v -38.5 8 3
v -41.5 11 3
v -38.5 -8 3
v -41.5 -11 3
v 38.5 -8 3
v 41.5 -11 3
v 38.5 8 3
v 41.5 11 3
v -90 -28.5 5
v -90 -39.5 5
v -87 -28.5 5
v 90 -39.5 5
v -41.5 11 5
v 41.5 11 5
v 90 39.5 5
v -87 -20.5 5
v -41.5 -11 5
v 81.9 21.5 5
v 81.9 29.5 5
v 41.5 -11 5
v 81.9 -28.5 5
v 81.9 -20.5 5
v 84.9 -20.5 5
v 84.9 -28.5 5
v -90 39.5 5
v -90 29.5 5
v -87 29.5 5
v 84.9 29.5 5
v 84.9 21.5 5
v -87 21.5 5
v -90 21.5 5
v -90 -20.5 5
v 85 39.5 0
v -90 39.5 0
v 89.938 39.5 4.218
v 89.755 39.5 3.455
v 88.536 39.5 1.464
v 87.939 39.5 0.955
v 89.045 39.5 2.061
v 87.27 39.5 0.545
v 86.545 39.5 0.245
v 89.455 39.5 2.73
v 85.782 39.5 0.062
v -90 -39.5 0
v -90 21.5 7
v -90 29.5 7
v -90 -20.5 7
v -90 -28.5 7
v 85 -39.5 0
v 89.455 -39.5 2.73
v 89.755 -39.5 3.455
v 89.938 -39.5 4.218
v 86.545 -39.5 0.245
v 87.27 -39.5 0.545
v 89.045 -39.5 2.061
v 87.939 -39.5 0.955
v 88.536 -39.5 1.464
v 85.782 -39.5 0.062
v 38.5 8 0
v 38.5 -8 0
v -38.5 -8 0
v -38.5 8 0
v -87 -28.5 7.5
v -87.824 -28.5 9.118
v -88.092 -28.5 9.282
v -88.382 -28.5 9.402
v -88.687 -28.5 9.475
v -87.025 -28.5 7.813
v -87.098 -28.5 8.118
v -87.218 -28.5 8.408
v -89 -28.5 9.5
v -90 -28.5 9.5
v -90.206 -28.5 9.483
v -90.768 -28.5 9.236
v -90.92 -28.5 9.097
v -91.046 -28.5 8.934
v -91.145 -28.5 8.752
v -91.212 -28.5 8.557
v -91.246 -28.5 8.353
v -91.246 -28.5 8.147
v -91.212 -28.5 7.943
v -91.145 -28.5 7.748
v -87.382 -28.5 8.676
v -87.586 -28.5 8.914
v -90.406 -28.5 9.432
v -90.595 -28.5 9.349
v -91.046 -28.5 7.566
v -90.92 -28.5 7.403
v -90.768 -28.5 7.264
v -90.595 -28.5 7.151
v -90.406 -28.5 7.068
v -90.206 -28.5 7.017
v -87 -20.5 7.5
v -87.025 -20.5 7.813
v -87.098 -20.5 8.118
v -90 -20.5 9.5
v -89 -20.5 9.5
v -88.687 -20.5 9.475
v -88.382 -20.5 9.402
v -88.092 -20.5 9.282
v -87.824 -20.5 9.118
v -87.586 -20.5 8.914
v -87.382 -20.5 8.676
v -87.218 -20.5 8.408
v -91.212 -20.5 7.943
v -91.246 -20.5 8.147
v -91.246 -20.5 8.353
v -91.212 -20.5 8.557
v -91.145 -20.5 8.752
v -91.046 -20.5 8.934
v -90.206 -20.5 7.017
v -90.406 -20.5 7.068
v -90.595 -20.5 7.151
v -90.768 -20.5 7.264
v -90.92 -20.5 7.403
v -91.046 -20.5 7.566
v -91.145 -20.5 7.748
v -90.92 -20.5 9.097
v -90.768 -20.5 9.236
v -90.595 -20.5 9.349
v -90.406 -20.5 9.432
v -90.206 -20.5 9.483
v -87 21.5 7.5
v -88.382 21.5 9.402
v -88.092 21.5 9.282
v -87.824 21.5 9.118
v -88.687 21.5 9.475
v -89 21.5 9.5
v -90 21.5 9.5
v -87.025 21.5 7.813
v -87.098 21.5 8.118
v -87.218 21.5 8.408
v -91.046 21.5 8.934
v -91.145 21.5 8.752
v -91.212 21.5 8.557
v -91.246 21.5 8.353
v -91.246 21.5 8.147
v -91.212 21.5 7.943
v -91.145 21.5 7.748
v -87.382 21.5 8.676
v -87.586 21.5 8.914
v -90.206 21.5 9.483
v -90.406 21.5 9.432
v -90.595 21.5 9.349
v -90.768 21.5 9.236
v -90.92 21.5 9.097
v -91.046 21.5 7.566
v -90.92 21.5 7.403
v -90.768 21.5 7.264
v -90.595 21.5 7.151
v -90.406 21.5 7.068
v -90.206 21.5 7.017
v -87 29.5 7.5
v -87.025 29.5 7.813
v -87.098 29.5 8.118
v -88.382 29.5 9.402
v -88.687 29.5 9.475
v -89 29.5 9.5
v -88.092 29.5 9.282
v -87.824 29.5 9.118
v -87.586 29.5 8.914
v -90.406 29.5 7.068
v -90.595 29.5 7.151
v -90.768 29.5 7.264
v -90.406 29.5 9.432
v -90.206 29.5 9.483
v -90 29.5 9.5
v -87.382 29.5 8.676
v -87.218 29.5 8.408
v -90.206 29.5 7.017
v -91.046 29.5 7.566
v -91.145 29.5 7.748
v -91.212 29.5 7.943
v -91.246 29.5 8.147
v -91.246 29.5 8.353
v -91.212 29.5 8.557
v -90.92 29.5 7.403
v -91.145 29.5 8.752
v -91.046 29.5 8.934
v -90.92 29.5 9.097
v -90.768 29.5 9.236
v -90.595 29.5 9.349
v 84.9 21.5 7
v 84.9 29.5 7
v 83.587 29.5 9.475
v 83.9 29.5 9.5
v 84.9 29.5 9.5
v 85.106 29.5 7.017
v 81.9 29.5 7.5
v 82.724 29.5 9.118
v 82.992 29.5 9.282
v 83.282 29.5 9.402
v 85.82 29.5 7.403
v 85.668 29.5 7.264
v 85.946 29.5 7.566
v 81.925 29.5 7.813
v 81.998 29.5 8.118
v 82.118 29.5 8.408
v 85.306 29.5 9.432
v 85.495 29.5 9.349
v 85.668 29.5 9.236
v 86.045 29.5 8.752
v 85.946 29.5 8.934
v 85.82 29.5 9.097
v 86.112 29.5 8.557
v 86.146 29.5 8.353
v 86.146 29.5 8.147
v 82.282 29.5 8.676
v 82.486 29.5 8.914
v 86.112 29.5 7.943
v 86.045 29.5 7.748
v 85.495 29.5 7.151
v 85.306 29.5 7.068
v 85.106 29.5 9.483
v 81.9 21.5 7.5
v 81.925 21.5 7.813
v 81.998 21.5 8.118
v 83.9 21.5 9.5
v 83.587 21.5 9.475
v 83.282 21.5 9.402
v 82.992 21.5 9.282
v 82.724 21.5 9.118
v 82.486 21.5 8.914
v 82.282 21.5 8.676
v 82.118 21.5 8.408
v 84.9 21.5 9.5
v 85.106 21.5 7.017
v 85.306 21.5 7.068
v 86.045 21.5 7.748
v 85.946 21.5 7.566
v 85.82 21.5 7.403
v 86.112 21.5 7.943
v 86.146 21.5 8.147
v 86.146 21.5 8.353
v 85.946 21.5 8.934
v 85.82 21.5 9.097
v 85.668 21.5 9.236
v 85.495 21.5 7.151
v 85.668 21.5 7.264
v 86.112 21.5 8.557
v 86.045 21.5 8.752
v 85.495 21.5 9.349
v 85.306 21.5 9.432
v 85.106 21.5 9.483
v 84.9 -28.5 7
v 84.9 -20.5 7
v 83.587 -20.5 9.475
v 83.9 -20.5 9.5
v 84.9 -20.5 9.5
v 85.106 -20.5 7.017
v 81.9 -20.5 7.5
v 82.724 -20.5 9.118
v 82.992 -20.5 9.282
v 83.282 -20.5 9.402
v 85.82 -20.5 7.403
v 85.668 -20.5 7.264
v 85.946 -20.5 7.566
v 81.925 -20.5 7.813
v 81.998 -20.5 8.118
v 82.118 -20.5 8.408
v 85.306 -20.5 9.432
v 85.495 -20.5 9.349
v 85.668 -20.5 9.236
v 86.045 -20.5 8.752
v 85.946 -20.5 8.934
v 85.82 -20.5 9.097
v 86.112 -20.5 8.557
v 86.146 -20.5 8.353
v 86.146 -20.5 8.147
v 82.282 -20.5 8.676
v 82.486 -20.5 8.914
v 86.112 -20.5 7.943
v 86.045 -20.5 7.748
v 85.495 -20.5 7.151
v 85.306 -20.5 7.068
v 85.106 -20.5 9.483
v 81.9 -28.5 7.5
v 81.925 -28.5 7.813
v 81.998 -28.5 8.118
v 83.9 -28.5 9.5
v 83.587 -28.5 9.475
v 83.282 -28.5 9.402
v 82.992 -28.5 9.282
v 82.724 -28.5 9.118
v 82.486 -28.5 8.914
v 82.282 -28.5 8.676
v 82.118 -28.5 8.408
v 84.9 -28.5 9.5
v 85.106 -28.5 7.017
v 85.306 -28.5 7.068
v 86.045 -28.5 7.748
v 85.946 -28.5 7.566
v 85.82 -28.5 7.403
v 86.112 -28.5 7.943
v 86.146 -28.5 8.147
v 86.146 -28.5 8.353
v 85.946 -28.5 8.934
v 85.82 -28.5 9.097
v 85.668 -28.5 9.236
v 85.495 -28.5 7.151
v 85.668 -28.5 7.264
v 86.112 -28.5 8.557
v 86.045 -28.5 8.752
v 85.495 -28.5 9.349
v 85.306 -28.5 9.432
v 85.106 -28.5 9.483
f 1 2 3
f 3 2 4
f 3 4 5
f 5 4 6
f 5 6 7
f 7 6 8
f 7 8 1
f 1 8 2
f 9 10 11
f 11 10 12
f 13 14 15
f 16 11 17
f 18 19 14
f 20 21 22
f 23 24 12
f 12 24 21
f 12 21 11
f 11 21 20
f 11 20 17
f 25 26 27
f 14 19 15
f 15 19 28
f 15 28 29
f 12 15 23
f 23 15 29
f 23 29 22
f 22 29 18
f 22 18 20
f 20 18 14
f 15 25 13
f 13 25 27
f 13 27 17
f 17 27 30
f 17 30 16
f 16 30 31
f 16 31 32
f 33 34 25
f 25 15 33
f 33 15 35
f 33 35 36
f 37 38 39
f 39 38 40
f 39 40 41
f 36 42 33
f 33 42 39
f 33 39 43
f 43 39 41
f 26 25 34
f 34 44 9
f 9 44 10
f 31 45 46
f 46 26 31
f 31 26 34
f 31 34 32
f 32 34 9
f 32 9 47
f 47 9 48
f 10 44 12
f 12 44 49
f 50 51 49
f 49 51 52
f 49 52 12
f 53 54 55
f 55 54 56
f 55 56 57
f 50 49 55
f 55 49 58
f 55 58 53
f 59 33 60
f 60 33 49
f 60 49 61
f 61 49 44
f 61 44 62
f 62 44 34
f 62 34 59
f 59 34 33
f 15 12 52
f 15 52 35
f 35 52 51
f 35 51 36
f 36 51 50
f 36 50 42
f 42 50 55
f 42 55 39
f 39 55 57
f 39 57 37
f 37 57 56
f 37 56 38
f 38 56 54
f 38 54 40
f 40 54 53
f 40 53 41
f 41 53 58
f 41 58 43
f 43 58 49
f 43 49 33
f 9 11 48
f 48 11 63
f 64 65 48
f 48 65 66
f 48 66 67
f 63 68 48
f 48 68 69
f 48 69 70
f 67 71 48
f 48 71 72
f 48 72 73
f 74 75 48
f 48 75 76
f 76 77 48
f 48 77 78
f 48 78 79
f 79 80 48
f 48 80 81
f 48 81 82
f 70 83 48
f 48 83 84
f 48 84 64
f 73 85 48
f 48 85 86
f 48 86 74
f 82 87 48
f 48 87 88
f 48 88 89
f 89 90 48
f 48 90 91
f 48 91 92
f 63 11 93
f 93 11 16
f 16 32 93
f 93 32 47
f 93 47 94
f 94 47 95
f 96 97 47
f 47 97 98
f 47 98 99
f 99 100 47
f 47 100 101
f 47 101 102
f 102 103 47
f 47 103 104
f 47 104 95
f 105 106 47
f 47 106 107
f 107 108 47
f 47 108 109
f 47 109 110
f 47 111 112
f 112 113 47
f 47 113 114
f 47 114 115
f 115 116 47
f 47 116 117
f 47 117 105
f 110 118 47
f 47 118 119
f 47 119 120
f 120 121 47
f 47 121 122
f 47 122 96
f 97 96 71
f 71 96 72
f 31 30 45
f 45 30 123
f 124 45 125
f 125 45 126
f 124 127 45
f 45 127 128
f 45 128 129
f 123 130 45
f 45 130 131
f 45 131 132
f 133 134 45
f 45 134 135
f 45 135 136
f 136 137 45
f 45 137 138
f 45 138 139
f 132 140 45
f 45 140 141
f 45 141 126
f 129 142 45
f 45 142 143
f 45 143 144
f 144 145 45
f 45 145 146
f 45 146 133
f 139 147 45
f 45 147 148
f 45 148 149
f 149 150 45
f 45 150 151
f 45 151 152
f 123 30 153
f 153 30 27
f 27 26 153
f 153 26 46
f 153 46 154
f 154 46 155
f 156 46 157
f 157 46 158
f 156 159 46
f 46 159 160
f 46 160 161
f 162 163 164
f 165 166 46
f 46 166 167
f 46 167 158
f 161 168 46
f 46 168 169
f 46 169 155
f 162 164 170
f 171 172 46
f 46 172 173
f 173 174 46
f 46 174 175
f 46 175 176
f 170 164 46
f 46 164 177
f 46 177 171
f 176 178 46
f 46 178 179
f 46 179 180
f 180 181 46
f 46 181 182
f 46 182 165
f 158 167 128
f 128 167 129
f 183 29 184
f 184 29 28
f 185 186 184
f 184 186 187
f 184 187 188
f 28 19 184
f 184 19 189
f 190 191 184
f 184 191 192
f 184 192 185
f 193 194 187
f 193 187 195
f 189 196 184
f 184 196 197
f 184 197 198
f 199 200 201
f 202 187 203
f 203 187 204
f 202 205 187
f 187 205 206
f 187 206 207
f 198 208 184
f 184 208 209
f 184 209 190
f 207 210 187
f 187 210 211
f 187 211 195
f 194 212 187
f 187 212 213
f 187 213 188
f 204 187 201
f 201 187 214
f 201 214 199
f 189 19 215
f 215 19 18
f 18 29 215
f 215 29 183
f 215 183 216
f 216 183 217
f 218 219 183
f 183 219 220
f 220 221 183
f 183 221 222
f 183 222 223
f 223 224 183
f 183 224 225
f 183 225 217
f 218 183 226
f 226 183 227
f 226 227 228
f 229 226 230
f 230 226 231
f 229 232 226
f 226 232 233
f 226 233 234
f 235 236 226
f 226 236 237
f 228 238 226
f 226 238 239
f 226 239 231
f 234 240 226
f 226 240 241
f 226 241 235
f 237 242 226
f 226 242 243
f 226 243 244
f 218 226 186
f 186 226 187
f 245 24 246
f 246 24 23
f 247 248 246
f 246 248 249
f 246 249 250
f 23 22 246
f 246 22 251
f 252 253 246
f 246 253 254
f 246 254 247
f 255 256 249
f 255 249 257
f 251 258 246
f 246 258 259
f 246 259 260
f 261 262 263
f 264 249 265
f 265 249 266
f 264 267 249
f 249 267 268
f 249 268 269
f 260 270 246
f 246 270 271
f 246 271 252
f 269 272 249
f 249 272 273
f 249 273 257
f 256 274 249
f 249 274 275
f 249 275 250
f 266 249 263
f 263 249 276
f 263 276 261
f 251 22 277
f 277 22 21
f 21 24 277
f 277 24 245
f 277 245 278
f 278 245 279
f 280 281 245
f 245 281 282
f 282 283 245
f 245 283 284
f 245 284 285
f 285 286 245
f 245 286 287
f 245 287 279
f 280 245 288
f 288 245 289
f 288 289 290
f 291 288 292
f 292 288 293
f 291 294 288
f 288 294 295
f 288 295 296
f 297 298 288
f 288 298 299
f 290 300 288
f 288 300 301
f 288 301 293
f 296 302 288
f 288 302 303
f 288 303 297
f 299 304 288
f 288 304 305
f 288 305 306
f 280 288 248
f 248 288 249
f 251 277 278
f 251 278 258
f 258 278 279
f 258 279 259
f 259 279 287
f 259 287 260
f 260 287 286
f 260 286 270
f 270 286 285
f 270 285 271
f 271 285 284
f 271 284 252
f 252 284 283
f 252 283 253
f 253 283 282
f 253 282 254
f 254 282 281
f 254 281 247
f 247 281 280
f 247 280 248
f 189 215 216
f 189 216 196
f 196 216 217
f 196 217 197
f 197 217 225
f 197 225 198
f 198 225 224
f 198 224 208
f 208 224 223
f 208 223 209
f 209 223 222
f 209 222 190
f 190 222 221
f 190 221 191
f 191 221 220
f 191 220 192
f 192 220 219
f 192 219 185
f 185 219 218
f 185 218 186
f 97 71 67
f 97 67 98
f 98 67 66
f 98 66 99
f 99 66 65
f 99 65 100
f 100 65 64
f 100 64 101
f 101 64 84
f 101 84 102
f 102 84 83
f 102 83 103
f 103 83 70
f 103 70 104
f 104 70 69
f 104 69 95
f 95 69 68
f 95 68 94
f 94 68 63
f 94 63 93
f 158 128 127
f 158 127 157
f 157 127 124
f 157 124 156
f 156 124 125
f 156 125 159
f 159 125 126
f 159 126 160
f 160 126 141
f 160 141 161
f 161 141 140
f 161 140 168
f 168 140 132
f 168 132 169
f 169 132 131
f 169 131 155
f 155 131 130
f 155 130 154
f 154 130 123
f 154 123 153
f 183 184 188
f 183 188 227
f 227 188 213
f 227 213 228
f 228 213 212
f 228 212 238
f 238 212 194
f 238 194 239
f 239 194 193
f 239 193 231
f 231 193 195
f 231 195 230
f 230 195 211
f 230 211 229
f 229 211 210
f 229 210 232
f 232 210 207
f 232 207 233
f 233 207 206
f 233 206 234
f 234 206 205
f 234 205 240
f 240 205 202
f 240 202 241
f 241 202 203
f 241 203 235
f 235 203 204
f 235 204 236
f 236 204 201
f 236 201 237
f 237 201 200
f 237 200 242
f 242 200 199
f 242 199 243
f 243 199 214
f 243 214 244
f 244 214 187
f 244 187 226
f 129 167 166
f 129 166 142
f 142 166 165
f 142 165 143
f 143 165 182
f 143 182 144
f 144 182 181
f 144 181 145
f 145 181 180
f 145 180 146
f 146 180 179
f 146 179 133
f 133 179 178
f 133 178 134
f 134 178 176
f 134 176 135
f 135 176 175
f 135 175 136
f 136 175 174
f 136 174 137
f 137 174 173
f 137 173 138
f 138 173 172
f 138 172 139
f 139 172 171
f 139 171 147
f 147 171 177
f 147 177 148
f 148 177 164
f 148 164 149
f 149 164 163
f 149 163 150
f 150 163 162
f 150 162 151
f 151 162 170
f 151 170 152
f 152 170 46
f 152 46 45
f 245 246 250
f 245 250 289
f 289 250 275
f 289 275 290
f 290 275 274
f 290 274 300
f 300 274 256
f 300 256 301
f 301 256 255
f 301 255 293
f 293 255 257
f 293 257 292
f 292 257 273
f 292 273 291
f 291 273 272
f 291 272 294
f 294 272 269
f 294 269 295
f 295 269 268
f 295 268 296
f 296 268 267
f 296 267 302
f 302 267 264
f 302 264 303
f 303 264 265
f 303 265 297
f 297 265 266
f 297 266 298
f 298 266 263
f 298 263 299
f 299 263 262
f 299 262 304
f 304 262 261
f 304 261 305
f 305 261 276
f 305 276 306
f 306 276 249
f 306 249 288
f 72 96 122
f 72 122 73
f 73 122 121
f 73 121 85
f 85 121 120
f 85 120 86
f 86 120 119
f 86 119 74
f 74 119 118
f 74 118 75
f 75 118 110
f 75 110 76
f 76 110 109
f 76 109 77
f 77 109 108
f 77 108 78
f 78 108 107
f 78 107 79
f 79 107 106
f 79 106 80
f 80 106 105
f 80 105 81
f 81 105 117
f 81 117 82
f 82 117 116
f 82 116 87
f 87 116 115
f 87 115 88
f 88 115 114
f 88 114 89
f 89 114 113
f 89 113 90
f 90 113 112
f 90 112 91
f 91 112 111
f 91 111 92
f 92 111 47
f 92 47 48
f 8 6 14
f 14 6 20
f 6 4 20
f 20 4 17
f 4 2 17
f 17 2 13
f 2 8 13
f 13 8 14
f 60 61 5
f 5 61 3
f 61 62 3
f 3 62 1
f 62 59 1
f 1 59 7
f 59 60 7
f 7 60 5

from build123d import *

# Parameters (mm, degrees)
SKETCH1_W            = 180
SKETCH1_H            = 79
BOSS_EXTRUDE1_DEPTH  = 5
FILLET1_R            = 5
SKETCH2_W            = 3
SKETCH2_H            = 8
BOSS_EXTRUDE2_DEPTH  = 4.5
FILLET2_R            = 2
SKETCH3_R            = 1.25
BOSS_EXTRUDE3_DEPTH  = 8
LPATTERN1_COUNT      = 2
LPATTERN1_PITCH      = 50
LPATTERN1_COUNT_DIR2 = 2
LPATTERN1_PITCH_DIR2 = 174.9
SKETCH4_W            = 83
SKETCH4_H            = 22
CUT_EXTRUDE1_DEPTH   = 2
SKETCH5_W            = 77
SKETCH5_H            = 16
CUT_EXTRUDE2_DEPTH   = 3


with BuildPart() as part:
    # Sketch1 → Boss-Extrude1 (new body)
    with BuildSketch(Plane.XY):
        Rectangle(SKETCH1_W, SKETCH1_H)
    extrude(amount=BOSS_EXTRUDE1_DEPTH)

    # Fillet1
    fillet1_edges = [part.edges().sort_by_distance(p)[0] for p in [
        (90, 0, 0),
    ]]
    fillet(fillet1_edges, radius=FILLET1_R - 0.0001)  # a hair under: the kernel refuses the full size

    # Sketch2 → Boss-Extrude2 (add)
    with BuildSketch(Plane.XY.offset(5)):
        with Locations((-88.5, -24.5)):
            Rectangle(SKETCH2_W, SKETCH2_H)
        with Locations((-88.5, 25.5)):
            Rectangle(SKETCH2_W, SKETCH2_H)
        with Locations((83.4, 25.5)):
            Rectangle(SKETCH2_W, SKETCH2_H)
        with Locations((83.4, -24.5)):
            Rectangle(SKETCH2_W, SKETCH2_H)
    extrude(amount=BOSS_EXTRUDE2_DEPTH)

    # Fillet2
    fillet2_edges = [part.edges().sort_by_distance(p)[0] for p in [
        (-87, -24.5, 9.5),
        (-87, 25.5, 9.5),
        (81.9, 25.5, 9.5),
        (81.9, -24.5, 9.5),
    ]]
    fillet(fillet2_edges, radius=FILLET2_R)

    # Sketch3 → Boss-Extrude3 (add)
    with BuildSketch(Plane(origin=(0, 29.5, 0), x_dir=(1, 0, 0), z_dir=(0, 1, 0))):
        with Locations((84.9, -8.25)):
            Circle(SKETCH3_R)
    boss_extrude3 = extrude(amount=-BOSS_EXTRUDE3_DEPTH)

    # LPattern1: Boss-Extrude3 2 × 2
    with Locations(*[(-j * LPATTERN1_PITCH_DIR2, -i * LPATTERN1_PITCH, 0) for i in range(LPATTERN1_COUNT) for j in range(LPATTERN1_COUNT_DIR2) if (i, j) != (0, 0)]):
        add(boss_extrude3)

    # Sketch4 → Cut-Extrude1 (cut)
    with BuildSketch(Plane.XY.offset(5)):
        Rectangle(SKETCH4_W, SKETCH4_H)
    extrude(amount=-CUT_EXTRUDE1_DEPTH, mode=Mode.SUBTRACT)

    # Sketch5 → Cut-Extrude2 (cut)
    with BuildSketch(Plane.XY.offset(3)):
        Rectangle(SKETCH5_W, SKETCH5_H)
    extrude(amount=-CUT_EXTRUDE2_DEPTH, mode=Mode.SUBTRACT)


solid = part.part
